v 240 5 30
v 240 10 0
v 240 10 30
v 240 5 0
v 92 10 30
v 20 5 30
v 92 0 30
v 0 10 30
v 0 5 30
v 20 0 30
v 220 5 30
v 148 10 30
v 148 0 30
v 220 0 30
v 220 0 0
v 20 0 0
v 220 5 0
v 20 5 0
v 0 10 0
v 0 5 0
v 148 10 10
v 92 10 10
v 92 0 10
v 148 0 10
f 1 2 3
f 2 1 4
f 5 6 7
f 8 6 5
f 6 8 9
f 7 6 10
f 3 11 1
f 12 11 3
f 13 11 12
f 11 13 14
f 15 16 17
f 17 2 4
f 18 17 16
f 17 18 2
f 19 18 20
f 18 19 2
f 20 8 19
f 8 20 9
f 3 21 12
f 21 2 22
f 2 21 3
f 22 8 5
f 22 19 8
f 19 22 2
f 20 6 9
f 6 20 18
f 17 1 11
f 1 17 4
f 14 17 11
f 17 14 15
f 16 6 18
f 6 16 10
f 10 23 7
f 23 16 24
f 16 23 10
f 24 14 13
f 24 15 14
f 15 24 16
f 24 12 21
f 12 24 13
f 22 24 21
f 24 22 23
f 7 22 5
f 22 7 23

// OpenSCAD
difference() {
    part();
    cutout();
}

module part() {
    union() {
        translate([0, 5, 0])
            cube([240, 5, 30]);
        translate([20, 0, 0])
            cube([200, 5, 30]);
    }
}

module cutout() {
    translate([92, -1, 10])
        cube([56, 12, 21]);
}
